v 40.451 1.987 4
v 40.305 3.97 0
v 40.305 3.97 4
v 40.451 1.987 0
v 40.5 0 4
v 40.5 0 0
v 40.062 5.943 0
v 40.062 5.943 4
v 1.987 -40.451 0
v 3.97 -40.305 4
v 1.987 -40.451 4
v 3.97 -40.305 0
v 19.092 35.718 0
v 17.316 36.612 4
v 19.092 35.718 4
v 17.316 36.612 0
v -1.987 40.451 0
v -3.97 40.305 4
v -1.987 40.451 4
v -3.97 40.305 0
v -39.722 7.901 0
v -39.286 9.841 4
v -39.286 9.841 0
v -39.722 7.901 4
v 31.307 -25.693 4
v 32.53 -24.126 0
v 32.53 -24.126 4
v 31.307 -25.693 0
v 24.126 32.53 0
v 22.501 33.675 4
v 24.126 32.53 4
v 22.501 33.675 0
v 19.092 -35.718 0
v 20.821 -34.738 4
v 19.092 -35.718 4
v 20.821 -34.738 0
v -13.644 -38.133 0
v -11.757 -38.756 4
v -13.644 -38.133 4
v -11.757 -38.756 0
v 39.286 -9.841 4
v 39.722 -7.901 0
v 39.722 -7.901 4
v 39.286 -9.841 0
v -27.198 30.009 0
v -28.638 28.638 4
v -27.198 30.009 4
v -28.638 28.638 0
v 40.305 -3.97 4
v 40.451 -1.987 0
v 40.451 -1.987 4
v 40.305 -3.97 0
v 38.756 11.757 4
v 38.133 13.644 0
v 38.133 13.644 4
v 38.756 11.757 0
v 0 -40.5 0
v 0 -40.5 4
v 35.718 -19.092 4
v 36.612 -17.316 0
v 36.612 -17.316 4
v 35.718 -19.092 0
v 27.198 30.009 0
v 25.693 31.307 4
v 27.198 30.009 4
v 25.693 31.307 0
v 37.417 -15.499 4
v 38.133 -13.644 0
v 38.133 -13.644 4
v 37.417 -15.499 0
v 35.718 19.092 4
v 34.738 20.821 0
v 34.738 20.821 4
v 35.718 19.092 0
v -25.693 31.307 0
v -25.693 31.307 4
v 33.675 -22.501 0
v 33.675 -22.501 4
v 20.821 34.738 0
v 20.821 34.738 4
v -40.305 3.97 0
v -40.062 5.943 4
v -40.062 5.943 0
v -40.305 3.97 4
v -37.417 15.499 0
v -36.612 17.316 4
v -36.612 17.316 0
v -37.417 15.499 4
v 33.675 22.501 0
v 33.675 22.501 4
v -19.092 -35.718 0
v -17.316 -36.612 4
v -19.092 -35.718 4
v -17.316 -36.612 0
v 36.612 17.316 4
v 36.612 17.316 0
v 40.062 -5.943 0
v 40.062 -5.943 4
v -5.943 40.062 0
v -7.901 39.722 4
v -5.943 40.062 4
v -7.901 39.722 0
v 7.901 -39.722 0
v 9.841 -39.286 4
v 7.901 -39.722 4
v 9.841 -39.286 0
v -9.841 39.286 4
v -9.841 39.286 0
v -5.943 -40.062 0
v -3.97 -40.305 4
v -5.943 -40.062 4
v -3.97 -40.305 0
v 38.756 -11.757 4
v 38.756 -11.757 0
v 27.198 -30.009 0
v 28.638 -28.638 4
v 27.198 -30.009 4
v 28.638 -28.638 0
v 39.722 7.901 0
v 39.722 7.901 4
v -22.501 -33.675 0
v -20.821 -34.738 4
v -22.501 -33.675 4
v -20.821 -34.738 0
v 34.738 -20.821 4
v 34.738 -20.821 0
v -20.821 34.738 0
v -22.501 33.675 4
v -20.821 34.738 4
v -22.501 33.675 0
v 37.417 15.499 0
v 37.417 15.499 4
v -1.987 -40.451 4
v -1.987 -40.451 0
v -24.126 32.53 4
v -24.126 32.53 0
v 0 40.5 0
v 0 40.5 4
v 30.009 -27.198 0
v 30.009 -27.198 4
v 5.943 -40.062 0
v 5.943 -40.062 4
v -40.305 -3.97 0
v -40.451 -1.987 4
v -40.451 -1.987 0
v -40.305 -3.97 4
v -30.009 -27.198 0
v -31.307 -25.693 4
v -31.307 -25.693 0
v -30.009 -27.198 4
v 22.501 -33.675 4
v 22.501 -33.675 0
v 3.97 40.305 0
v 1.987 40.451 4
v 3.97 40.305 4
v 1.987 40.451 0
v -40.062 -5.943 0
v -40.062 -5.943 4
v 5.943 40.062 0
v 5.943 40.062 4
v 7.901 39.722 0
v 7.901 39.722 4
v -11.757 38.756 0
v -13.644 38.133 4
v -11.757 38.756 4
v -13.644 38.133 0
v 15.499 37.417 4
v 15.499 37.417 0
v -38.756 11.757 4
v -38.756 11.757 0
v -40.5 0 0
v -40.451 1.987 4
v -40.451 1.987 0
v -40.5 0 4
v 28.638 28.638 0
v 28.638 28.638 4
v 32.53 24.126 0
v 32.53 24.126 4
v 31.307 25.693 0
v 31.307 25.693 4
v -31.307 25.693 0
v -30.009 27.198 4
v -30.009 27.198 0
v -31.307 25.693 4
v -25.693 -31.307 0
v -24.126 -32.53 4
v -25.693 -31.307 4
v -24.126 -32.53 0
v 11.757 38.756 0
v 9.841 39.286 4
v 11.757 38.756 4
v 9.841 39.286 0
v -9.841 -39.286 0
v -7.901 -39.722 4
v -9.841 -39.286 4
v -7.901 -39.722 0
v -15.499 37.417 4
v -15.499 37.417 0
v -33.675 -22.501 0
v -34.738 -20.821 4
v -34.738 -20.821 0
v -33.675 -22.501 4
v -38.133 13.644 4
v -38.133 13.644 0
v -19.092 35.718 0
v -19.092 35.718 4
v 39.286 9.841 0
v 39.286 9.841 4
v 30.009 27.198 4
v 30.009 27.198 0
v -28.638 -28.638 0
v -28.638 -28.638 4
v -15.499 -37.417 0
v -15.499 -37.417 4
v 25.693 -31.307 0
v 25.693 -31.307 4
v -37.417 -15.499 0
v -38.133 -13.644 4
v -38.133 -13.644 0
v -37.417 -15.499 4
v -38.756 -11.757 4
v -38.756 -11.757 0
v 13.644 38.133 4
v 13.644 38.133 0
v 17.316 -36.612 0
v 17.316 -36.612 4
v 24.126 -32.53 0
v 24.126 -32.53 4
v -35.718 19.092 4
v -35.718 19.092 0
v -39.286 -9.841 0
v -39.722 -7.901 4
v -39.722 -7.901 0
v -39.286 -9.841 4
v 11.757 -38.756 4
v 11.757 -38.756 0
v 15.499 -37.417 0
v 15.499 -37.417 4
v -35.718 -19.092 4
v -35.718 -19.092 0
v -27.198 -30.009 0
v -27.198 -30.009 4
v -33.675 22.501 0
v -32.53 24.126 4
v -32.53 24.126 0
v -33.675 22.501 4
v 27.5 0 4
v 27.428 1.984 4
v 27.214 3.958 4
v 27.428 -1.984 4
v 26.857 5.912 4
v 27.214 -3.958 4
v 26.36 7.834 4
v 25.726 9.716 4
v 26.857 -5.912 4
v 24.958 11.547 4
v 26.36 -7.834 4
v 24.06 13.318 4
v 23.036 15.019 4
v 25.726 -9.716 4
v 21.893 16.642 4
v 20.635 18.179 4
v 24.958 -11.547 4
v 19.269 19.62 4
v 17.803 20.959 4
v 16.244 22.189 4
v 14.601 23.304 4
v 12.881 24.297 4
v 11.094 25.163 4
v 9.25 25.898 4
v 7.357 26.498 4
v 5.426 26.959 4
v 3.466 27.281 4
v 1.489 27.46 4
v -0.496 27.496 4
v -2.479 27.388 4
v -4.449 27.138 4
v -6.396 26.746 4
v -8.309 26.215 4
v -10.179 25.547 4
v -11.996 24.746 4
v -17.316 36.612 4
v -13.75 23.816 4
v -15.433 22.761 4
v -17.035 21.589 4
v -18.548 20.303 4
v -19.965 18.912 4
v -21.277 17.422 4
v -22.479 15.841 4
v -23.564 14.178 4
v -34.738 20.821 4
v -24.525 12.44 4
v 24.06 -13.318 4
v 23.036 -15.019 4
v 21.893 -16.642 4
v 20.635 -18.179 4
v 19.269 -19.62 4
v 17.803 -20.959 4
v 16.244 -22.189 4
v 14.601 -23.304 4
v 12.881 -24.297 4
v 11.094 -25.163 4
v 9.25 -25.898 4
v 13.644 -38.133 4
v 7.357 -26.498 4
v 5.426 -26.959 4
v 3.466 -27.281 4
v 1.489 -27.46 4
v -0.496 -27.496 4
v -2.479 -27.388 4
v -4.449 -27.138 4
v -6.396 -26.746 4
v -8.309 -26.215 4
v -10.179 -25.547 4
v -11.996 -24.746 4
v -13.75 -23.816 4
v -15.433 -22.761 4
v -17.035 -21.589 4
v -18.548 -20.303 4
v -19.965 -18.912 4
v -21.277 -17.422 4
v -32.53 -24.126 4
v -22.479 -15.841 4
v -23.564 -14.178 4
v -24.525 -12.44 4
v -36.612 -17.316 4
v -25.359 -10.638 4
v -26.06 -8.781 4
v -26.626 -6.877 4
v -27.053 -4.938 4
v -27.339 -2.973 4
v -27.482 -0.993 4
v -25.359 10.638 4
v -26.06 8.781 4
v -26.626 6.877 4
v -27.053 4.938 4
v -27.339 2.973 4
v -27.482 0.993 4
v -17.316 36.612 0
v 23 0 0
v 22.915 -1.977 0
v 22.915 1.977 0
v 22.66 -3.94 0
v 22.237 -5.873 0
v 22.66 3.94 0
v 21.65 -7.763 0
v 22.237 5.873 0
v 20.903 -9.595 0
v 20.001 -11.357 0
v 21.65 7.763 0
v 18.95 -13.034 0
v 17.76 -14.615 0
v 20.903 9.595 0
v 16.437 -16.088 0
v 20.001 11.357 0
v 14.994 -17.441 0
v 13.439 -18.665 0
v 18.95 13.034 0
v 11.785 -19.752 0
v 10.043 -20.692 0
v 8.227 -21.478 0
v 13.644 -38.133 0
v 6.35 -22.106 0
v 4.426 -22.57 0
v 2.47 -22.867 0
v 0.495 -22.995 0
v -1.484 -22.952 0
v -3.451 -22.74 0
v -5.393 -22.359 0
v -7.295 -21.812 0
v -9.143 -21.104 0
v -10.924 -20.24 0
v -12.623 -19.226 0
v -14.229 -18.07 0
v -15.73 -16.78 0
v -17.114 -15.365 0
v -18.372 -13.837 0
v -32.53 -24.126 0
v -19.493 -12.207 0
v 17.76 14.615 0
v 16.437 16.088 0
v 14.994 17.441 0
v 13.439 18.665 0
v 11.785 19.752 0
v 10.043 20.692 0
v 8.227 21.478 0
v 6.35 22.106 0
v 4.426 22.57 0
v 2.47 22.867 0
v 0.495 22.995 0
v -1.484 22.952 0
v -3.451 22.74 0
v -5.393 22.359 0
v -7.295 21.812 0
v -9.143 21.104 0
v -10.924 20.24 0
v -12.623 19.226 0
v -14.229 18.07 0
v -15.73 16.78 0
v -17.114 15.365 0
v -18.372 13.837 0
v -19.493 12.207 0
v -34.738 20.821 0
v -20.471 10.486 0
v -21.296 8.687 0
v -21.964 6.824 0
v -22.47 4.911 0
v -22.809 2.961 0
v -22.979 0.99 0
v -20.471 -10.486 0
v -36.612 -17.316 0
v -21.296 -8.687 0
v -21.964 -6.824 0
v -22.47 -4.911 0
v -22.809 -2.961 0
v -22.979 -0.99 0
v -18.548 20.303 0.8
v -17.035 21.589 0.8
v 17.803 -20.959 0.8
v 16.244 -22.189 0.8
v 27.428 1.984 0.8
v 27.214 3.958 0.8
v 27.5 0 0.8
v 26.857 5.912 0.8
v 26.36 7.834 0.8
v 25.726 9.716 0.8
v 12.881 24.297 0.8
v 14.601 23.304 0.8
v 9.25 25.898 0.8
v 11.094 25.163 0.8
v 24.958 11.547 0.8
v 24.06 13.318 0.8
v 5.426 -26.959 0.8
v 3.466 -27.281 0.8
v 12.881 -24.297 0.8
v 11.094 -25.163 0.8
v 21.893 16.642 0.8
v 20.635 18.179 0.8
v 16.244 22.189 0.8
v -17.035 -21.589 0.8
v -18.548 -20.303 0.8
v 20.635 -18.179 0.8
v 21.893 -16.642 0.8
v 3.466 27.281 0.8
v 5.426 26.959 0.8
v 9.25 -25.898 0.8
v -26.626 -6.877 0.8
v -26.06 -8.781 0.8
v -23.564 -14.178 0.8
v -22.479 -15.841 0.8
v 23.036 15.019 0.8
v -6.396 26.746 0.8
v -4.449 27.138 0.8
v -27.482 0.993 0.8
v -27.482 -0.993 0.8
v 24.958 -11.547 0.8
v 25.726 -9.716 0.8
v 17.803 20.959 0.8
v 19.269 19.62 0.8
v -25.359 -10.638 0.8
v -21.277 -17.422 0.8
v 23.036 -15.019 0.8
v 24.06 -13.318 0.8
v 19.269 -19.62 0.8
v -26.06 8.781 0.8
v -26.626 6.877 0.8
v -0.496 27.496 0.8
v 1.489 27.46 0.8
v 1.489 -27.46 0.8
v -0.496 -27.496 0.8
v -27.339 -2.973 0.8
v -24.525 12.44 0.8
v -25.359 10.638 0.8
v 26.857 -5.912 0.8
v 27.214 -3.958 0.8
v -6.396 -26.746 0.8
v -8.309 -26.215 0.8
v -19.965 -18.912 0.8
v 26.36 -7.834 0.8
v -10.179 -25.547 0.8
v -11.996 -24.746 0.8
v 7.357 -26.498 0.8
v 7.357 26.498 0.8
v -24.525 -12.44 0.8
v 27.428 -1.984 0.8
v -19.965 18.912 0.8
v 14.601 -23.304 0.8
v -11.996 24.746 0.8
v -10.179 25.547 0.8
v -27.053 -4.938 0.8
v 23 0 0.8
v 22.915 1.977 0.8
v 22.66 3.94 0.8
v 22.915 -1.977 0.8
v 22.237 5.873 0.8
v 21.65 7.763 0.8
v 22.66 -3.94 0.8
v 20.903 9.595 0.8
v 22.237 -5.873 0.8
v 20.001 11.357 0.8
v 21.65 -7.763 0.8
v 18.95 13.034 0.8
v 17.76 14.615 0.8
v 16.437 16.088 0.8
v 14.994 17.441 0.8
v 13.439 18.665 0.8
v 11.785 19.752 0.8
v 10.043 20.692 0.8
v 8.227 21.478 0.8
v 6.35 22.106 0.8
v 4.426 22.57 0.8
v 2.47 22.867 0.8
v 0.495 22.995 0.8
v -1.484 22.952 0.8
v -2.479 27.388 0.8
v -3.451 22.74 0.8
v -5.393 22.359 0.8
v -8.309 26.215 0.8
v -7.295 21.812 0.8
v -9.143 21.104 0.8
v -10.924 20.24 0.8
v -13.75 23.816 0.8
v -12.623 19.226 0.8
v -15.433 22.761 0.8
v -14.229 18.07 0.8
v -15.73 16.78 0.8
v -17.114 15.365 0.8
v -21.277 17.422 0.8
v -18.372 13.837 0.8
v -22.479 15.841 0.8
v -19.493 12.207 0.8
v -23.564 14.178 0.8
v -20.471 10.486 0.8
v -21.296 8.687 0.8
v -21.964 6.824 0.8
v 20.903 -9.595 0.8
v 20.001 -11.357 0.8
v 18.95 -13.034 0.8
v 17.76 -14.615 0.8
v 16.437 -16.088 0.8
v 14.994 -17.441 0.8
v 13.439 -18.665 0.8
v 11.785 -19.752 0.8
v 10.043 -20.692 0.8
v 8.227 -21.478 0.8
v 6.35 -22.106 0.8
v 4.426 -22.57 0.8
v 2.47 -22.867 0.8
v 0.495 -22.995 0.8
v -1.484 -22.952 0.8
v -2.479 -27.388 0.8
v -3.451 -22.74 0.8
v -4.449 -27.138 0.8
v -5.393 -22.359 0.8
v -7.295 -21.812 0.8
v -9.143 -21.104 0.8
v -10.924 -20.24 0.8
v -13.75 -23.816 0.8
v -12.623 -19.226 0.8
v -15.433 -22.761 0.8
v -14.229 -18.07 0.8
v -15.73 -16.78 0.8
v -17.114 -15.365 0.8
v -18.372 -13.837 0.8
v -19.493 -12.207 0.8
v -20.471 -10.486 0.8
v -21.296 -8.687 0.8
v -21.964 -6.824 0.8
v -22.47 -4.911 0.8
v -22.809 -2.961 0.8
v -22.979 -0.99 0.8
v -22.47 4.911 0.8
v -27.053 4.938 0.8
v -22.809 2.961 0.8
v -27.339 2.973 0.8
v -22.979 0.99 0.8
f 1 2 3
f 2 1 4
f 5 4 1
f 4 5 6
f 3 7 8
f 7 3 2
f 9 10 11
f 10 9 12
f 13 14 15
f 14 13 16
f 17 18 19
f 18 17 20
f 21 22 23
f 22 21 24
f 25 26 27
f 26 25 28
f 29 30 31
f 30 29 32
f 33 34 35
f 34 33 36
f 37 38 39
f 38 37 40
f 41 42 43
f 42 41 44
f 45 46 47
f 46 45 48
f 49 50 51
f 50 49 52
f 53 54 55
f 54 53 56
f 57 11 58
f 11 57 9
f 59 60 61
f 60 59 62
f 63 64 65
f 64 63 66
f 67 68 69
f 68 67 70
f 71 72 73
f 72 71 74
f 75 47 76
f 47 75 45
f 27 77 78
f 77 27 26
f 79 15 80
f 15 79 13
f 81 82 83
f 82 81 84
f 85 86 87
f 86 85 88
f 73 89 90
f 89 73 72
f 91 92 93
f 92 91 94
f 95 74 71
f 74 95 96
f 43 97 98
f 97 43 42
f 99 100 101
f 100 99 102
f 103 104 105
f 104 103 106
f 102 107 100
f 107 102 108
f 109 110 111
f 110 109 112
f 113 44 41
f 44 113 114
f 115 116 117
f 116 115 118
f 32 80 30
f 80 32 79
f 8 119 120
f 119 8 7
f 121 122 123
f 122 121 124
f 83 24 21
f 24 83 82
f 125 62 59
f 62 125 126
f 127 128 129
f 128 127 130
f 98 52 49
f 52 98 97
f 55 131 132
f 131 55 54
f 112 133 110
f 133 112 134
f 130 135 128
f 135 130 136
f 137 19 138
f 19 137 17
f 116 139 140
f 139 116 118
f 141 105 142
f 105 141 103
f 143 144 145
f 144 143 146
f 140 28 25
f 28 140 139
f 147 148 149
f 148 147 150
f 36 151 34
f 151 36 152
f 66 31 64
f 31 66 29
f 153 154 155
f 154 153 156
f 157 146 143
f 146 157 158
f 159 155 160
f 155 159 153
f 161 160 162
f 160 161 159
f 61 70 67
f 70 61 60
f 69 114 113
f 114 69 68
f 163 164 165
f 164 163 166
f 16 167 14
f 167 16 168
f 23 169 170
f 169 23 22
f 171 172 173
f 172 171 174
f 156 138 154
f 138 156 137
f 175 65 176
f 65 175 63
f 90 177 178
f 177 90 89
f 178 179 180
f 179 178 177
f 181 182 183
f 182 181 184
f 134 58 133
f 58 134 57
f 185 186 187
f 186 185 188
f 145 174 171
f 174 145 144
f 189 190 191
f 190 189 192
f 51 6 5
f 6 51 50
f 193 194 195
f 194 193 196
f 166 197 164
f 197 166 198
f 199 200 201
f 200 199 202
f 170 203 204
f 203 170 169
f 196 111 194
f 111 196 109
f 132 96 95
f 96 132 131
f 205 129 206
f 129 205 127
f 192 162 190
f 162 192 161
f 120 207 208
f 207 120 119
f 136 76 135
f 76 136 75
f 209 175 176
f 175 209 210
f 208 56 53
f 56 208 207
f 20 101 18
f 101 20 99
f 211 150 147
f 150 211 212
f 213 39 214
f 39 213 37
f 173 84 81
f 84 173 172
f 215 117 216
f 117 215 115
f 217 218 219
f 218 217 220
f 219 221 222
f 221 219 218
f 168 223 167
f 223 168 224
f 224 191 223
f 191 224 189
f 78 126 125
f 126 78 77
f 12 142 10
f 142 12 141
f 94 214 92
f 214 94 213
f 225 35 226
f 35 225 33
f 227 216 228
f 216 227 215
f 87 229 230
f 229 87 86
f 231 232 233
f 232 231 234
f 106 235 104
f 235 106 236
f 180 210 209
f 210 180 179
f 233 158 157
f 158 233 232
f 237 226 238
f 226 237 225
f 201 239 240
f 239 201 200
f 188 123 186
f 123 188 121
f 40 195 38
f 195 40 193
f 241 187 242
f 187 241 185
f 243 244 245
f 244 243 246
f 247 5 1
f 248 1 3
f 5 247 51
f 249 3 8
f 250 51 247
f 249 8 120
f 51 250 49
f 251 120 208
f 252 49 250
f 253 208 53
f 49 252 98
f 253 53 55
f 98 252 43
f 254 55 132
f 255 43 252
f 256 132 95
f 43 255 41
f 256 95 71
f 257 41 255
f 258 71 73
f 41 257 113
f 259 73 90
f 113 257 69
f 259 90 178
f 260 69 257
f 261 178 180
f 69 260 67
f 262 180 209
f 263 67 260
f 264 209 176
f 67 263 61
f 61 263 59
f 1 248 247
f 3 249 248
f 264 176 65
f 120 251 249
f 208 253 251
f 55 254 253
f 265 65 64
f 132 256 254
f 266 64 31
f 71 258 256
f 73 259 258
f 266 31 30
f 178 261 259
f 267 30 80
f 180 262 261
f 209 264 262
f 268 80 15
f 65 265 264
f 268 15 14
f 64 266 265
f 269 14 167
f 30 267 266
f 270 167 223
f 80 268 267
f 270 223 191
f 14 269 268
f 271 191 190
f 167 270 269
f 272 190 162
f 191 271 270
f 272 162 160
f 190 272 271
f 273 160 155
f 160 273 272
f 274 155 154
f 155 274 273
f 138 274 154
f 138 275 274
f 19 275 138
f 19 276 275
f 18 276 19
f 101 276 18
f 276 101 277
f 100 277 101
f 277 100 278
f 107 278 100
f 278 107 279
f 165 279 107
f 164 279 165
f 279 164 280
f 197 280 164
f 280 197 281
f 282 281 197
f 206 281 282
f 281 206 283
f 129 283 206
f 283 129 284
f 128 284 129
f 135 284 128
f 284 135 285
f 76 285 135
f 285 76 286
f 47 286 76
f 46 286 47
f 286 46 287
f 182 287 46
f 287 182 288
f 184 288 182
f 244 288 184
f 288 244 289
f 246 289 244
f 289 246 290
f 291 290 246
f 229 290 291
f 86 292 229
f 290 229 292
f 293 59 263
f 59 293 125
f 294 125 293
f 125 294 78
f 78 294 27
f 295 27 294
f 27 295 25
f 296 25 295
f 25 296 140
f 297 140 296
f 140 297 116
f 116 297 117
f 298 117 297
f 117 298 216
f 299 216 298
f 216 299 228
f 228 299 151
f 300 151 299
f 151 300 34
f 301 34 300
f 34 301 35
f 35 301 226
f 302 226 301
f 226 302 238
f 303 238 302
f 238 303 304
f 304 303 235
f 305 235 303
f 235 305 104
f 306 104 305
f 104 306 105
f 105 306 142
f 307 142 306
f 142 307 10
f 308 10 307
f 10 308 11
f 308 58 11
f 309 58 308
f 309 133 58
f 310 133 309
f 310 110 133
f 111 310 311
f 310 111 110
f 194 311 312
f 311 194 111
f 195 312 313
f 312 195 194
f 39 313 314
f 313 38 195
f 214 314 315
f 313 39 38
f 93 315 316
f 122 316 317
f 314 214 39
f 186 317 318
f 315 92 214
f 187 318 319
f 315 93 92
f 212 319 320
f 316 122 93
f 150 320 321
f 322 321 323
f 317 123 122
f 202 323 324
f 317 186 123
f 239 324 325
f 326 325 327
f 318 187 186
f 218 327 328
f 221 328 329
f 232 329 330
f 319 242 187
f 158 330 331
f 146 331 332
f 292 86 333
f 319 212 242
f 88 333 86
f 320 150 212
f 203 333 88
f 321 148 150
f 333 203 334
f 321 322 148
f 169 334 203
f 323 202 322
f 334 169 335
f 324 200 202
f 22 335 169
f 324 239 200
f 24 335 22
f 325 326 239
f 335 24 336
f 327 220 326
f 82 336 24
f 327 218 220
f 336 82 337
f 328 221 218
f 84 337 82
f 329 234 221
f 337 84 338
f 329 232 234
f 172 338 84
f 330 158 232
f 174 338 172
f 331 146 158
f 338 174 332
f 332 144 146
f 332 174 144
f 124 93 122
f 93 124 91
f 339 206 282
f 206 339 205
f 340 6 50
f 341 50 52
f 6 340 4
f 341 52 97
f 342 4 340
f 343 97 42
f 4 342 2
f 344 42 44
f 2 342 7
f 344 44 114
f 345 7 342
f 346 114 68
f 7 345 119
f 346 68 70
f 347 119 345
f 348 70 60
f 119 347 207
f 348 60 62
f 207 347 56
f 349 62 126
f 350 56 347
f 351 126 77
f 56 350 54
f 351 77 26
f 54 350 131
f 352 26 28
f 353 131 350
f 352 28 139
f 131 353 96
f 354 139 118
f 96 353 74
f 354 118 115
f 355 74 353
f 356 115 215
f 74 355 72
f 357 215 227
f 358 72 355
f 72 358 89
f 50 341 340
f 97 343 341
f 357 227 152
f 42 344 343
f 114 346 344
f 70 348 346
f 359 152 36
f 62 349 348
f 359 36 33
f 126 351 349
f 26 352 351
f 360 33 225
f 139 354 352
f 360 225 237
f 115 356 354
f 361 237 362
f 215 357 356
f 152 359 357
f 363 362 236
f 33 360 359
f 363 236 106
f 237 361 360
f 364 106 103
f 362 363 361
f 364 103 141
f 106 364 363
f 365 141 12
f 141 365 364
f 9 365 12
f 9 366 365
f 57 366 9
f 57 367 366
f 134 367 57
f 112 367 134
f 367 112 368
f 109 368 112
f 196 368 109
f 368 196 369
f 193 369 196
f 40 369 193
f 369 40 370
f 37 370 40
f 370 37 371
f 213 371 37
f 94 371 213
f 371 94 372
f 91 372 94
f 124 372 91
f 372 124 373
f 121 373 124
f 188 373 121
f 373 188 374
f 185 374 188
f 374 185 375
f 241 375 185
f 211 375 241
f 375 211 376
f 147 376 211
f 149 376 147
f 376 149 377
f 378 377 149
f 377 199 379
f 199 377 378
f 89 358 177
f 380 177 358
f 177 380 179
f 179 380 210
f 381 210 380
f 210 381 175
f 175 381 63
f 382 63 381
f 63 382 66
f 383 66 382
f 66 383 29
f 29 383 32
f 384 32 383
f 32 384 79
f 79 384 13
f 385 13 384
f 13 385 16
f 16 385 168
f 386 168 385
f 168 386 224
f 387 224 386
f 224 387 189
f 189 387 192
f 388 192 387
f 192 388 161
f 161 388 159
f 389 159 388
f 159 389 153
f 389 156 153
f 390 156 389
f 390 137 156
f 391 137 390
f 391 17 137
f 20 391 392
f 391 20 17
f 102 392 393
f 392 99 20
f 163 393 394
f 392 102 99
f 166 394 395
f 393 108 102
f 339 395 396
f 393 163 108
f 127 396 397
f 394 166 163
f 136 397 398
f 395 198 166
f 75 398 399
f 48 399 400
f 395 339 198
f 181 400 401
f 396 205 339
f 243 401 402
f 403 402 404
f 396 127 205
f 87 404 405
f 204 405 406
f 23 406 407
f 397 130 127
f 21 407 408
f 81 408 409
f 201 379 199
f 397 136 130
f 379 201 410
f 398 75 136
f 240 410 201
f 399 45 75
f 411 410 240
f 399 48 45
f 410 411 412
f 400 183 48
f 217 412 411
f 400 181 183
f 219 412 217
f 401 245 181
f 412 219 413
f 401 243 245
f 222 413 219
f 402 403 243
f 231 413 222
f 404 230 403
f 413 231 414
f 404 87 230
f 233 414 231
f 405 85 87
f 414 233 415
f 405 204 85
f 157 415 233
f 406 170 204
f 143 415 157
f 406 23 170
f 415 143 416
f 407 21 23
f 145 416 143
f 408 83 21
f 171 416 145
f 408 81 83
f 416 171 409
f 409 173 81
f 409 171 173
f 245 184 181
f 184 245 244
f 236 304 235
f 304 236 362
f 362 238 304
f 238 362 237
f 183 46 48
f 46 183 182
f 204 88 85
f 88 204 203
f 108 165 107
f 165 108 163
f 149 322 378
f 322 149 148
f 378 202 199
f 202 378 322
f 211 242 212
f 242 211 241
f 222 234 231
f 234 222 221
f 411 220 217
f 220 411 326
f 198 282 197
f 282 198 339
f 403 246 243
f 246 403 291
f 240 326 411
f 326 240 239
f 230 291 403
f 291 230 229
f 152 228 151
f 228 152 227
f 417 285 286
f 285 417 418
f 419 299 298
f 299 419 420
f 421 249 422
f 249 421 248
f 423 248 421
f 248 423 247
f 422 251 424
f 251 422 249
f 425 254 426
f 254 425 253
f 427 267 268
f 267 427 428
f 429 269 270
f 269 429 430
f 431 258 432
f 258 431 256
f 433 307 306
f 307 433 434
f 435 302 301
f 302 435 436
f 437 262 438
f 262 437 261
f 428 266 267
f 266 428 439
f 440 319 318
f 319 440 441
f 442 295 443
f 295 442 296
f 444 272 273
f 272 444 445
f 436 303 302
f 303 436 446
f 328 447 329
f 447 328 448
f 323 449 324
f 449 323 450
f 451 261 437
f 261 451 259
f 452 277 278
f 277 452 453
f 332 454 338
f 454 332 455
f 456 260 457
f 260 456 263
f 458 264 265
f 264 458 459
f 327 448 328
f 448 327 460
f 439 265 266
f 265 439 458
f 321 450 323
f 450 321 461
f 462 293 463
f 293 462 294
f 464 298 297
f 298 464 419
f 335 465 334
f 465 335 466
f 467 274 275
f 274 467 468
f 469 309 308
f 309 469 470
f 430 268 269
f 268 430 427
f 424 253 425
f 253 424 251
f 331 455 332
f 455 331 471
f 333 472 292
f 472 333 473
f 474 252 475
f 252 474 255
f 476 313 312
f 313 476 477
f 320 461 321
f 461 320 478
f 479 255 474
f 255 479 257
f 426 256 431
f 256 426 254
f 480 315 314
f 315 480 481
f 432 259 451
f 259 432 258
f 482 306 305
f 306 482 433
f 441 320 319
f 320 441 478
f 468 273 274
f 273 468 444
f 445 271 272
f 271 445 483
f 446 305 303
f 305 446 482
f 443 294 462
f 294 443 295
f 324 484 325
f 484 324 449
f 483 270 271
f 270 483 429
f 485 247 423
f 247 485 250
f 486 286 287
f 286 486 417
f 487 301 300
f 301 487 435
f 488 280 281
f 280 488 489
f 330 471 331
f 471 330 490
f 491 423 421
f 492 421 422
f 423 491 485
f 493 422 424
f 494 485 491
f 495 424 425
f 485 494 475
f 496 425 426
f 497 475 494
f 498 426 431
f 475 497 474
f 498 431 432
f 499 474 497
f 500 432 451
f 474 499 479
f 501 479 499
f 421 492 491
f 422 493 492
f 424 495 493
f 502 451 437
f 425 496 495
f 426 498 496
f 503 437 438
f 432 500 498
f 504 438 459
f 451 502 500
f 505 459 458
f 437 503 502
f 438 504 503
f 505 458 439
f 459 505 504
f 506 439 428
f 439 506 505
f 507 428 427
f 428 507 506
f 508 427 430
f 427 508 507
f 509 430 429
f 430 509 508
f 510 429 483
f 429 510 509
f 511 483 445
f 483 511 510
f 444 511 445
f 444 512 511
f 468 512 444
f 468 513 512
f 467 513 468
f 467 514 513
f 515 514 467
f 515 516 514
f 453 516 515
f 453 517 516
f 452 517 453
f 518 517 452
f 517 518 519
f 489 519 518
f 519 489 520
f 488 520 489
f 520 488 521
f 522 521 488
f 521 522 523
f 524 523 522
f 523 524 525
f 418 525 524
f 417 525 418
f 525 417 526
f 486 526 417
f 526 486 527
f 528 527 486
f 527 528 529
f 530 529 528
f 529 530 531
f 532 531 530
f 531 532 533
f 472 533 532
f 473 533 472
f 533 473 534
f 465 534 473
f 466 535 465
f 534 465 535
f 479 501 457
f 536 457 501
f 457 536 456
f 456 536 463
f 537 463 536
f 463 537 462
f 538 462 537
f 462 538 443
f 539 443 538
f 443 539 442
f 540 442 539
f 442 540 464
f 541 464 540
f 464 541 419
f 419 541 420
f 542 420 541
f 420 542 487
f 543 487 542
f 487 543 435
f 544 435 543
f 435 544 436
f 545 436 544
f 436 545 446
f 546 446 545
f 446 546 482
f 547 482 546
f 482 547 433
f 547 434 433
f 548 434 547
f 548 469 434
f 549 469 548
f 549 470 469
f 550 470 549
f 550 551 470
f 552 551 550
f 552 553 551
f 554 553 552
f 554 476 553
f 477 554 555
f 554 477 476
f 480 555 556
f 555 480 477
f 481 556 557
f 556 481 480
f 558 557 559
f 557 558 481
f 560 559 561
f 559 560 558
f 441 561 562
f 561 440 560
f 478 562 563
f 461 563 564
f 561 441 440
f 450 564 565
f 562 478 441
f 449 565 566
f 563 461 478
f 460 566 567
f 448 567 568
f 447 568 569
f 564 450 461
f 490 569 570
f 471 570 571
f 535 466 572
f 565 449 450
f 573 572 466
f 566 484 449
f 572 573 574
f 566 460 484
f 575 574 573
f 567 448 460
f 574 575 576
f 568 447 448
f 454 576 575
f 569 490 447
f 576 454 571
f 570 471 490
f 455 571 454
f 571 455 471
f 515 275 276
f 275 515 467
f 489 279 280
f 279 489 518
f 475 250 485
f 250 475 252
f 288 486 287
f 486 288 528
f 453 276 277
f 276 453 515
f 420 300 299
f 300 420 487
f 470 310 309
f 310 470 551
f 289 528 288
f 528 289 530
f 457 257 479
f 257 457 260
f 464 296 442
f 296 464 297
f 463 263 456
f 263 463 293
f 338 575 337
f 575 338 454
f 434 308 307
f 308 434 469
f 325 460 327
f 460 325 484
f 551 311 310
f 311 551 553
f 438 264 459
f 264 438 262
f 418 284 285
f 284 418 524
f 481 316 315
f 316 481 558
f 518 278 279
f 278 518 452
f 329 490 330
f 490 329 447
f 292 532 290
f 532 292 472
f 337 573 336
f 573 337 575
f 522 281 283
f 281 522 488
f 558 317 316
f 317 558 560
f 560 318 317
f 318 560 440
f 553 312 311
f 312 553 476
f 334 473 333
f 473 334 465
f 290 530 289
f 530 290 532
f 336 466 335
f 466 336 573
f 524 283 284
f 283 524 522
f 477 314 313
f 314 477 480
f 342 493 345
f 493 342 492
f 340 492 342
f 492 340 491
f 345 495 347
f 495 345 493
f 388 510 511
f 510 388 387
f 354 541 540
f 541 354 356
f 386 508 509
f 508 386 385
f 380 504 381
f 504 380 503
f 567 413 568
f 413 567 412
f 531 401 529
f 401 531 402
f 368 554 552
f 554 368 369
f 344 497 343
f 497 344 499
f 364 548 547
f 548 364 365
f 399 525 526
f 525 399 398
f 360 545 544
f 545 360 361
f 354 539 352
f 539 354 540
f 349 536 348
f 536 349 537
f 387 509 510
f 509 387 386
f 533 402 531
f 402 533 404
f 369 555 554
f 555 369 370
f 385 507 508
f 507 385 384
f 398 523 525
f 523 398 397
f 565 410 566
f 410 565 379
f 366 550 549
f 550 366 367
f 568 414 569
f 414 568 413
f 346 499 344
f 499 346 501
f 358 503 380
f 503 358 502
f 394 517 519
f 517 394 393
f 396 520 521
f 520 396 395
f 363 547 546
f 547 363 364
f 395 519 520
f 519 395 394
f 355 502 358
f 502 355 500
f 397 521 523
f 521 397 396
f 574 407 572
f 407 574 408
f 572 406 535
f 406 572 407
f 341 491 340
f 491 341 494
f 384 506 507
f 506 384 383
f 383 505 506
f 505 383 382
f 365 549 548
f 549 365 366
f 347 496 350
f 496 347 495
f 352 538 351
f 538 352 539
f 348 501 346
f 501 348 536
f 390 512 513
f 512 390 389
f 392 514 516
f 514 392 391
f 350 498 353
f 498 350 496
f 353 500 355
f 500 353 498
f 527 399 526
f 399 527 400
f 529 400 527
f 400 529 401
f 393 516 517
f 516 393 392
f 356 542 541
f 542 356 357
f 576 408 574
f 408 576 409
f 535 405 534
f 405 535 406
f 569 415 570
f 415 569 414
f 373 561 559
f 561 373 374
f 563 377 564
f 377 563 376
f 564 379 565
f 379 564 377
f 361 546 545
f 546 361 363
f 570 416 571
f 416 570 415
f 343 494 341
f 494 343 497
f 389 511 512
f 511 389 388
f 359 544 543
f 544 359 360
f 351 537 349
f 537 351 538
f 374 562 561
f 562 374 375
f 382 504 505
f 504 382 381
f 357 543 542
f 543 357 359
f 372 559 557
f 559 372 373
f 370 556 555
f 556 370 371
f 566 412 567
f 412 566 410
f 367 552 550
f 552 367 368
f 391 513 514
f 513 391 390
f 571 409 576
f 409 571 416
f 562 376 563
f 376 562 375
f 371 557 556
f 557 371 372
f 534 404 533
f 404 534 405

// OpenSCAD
// (c) Carlos Garcia 2023

$fa=0.1;

difference() {
cylinder(d=81,h=4);
translate([0,0,0.8]) cylinder(d=55,h=15);
cylinder(d=46,h=15,center=true);
}
//cylinder(d=56,h=15,center=true);
